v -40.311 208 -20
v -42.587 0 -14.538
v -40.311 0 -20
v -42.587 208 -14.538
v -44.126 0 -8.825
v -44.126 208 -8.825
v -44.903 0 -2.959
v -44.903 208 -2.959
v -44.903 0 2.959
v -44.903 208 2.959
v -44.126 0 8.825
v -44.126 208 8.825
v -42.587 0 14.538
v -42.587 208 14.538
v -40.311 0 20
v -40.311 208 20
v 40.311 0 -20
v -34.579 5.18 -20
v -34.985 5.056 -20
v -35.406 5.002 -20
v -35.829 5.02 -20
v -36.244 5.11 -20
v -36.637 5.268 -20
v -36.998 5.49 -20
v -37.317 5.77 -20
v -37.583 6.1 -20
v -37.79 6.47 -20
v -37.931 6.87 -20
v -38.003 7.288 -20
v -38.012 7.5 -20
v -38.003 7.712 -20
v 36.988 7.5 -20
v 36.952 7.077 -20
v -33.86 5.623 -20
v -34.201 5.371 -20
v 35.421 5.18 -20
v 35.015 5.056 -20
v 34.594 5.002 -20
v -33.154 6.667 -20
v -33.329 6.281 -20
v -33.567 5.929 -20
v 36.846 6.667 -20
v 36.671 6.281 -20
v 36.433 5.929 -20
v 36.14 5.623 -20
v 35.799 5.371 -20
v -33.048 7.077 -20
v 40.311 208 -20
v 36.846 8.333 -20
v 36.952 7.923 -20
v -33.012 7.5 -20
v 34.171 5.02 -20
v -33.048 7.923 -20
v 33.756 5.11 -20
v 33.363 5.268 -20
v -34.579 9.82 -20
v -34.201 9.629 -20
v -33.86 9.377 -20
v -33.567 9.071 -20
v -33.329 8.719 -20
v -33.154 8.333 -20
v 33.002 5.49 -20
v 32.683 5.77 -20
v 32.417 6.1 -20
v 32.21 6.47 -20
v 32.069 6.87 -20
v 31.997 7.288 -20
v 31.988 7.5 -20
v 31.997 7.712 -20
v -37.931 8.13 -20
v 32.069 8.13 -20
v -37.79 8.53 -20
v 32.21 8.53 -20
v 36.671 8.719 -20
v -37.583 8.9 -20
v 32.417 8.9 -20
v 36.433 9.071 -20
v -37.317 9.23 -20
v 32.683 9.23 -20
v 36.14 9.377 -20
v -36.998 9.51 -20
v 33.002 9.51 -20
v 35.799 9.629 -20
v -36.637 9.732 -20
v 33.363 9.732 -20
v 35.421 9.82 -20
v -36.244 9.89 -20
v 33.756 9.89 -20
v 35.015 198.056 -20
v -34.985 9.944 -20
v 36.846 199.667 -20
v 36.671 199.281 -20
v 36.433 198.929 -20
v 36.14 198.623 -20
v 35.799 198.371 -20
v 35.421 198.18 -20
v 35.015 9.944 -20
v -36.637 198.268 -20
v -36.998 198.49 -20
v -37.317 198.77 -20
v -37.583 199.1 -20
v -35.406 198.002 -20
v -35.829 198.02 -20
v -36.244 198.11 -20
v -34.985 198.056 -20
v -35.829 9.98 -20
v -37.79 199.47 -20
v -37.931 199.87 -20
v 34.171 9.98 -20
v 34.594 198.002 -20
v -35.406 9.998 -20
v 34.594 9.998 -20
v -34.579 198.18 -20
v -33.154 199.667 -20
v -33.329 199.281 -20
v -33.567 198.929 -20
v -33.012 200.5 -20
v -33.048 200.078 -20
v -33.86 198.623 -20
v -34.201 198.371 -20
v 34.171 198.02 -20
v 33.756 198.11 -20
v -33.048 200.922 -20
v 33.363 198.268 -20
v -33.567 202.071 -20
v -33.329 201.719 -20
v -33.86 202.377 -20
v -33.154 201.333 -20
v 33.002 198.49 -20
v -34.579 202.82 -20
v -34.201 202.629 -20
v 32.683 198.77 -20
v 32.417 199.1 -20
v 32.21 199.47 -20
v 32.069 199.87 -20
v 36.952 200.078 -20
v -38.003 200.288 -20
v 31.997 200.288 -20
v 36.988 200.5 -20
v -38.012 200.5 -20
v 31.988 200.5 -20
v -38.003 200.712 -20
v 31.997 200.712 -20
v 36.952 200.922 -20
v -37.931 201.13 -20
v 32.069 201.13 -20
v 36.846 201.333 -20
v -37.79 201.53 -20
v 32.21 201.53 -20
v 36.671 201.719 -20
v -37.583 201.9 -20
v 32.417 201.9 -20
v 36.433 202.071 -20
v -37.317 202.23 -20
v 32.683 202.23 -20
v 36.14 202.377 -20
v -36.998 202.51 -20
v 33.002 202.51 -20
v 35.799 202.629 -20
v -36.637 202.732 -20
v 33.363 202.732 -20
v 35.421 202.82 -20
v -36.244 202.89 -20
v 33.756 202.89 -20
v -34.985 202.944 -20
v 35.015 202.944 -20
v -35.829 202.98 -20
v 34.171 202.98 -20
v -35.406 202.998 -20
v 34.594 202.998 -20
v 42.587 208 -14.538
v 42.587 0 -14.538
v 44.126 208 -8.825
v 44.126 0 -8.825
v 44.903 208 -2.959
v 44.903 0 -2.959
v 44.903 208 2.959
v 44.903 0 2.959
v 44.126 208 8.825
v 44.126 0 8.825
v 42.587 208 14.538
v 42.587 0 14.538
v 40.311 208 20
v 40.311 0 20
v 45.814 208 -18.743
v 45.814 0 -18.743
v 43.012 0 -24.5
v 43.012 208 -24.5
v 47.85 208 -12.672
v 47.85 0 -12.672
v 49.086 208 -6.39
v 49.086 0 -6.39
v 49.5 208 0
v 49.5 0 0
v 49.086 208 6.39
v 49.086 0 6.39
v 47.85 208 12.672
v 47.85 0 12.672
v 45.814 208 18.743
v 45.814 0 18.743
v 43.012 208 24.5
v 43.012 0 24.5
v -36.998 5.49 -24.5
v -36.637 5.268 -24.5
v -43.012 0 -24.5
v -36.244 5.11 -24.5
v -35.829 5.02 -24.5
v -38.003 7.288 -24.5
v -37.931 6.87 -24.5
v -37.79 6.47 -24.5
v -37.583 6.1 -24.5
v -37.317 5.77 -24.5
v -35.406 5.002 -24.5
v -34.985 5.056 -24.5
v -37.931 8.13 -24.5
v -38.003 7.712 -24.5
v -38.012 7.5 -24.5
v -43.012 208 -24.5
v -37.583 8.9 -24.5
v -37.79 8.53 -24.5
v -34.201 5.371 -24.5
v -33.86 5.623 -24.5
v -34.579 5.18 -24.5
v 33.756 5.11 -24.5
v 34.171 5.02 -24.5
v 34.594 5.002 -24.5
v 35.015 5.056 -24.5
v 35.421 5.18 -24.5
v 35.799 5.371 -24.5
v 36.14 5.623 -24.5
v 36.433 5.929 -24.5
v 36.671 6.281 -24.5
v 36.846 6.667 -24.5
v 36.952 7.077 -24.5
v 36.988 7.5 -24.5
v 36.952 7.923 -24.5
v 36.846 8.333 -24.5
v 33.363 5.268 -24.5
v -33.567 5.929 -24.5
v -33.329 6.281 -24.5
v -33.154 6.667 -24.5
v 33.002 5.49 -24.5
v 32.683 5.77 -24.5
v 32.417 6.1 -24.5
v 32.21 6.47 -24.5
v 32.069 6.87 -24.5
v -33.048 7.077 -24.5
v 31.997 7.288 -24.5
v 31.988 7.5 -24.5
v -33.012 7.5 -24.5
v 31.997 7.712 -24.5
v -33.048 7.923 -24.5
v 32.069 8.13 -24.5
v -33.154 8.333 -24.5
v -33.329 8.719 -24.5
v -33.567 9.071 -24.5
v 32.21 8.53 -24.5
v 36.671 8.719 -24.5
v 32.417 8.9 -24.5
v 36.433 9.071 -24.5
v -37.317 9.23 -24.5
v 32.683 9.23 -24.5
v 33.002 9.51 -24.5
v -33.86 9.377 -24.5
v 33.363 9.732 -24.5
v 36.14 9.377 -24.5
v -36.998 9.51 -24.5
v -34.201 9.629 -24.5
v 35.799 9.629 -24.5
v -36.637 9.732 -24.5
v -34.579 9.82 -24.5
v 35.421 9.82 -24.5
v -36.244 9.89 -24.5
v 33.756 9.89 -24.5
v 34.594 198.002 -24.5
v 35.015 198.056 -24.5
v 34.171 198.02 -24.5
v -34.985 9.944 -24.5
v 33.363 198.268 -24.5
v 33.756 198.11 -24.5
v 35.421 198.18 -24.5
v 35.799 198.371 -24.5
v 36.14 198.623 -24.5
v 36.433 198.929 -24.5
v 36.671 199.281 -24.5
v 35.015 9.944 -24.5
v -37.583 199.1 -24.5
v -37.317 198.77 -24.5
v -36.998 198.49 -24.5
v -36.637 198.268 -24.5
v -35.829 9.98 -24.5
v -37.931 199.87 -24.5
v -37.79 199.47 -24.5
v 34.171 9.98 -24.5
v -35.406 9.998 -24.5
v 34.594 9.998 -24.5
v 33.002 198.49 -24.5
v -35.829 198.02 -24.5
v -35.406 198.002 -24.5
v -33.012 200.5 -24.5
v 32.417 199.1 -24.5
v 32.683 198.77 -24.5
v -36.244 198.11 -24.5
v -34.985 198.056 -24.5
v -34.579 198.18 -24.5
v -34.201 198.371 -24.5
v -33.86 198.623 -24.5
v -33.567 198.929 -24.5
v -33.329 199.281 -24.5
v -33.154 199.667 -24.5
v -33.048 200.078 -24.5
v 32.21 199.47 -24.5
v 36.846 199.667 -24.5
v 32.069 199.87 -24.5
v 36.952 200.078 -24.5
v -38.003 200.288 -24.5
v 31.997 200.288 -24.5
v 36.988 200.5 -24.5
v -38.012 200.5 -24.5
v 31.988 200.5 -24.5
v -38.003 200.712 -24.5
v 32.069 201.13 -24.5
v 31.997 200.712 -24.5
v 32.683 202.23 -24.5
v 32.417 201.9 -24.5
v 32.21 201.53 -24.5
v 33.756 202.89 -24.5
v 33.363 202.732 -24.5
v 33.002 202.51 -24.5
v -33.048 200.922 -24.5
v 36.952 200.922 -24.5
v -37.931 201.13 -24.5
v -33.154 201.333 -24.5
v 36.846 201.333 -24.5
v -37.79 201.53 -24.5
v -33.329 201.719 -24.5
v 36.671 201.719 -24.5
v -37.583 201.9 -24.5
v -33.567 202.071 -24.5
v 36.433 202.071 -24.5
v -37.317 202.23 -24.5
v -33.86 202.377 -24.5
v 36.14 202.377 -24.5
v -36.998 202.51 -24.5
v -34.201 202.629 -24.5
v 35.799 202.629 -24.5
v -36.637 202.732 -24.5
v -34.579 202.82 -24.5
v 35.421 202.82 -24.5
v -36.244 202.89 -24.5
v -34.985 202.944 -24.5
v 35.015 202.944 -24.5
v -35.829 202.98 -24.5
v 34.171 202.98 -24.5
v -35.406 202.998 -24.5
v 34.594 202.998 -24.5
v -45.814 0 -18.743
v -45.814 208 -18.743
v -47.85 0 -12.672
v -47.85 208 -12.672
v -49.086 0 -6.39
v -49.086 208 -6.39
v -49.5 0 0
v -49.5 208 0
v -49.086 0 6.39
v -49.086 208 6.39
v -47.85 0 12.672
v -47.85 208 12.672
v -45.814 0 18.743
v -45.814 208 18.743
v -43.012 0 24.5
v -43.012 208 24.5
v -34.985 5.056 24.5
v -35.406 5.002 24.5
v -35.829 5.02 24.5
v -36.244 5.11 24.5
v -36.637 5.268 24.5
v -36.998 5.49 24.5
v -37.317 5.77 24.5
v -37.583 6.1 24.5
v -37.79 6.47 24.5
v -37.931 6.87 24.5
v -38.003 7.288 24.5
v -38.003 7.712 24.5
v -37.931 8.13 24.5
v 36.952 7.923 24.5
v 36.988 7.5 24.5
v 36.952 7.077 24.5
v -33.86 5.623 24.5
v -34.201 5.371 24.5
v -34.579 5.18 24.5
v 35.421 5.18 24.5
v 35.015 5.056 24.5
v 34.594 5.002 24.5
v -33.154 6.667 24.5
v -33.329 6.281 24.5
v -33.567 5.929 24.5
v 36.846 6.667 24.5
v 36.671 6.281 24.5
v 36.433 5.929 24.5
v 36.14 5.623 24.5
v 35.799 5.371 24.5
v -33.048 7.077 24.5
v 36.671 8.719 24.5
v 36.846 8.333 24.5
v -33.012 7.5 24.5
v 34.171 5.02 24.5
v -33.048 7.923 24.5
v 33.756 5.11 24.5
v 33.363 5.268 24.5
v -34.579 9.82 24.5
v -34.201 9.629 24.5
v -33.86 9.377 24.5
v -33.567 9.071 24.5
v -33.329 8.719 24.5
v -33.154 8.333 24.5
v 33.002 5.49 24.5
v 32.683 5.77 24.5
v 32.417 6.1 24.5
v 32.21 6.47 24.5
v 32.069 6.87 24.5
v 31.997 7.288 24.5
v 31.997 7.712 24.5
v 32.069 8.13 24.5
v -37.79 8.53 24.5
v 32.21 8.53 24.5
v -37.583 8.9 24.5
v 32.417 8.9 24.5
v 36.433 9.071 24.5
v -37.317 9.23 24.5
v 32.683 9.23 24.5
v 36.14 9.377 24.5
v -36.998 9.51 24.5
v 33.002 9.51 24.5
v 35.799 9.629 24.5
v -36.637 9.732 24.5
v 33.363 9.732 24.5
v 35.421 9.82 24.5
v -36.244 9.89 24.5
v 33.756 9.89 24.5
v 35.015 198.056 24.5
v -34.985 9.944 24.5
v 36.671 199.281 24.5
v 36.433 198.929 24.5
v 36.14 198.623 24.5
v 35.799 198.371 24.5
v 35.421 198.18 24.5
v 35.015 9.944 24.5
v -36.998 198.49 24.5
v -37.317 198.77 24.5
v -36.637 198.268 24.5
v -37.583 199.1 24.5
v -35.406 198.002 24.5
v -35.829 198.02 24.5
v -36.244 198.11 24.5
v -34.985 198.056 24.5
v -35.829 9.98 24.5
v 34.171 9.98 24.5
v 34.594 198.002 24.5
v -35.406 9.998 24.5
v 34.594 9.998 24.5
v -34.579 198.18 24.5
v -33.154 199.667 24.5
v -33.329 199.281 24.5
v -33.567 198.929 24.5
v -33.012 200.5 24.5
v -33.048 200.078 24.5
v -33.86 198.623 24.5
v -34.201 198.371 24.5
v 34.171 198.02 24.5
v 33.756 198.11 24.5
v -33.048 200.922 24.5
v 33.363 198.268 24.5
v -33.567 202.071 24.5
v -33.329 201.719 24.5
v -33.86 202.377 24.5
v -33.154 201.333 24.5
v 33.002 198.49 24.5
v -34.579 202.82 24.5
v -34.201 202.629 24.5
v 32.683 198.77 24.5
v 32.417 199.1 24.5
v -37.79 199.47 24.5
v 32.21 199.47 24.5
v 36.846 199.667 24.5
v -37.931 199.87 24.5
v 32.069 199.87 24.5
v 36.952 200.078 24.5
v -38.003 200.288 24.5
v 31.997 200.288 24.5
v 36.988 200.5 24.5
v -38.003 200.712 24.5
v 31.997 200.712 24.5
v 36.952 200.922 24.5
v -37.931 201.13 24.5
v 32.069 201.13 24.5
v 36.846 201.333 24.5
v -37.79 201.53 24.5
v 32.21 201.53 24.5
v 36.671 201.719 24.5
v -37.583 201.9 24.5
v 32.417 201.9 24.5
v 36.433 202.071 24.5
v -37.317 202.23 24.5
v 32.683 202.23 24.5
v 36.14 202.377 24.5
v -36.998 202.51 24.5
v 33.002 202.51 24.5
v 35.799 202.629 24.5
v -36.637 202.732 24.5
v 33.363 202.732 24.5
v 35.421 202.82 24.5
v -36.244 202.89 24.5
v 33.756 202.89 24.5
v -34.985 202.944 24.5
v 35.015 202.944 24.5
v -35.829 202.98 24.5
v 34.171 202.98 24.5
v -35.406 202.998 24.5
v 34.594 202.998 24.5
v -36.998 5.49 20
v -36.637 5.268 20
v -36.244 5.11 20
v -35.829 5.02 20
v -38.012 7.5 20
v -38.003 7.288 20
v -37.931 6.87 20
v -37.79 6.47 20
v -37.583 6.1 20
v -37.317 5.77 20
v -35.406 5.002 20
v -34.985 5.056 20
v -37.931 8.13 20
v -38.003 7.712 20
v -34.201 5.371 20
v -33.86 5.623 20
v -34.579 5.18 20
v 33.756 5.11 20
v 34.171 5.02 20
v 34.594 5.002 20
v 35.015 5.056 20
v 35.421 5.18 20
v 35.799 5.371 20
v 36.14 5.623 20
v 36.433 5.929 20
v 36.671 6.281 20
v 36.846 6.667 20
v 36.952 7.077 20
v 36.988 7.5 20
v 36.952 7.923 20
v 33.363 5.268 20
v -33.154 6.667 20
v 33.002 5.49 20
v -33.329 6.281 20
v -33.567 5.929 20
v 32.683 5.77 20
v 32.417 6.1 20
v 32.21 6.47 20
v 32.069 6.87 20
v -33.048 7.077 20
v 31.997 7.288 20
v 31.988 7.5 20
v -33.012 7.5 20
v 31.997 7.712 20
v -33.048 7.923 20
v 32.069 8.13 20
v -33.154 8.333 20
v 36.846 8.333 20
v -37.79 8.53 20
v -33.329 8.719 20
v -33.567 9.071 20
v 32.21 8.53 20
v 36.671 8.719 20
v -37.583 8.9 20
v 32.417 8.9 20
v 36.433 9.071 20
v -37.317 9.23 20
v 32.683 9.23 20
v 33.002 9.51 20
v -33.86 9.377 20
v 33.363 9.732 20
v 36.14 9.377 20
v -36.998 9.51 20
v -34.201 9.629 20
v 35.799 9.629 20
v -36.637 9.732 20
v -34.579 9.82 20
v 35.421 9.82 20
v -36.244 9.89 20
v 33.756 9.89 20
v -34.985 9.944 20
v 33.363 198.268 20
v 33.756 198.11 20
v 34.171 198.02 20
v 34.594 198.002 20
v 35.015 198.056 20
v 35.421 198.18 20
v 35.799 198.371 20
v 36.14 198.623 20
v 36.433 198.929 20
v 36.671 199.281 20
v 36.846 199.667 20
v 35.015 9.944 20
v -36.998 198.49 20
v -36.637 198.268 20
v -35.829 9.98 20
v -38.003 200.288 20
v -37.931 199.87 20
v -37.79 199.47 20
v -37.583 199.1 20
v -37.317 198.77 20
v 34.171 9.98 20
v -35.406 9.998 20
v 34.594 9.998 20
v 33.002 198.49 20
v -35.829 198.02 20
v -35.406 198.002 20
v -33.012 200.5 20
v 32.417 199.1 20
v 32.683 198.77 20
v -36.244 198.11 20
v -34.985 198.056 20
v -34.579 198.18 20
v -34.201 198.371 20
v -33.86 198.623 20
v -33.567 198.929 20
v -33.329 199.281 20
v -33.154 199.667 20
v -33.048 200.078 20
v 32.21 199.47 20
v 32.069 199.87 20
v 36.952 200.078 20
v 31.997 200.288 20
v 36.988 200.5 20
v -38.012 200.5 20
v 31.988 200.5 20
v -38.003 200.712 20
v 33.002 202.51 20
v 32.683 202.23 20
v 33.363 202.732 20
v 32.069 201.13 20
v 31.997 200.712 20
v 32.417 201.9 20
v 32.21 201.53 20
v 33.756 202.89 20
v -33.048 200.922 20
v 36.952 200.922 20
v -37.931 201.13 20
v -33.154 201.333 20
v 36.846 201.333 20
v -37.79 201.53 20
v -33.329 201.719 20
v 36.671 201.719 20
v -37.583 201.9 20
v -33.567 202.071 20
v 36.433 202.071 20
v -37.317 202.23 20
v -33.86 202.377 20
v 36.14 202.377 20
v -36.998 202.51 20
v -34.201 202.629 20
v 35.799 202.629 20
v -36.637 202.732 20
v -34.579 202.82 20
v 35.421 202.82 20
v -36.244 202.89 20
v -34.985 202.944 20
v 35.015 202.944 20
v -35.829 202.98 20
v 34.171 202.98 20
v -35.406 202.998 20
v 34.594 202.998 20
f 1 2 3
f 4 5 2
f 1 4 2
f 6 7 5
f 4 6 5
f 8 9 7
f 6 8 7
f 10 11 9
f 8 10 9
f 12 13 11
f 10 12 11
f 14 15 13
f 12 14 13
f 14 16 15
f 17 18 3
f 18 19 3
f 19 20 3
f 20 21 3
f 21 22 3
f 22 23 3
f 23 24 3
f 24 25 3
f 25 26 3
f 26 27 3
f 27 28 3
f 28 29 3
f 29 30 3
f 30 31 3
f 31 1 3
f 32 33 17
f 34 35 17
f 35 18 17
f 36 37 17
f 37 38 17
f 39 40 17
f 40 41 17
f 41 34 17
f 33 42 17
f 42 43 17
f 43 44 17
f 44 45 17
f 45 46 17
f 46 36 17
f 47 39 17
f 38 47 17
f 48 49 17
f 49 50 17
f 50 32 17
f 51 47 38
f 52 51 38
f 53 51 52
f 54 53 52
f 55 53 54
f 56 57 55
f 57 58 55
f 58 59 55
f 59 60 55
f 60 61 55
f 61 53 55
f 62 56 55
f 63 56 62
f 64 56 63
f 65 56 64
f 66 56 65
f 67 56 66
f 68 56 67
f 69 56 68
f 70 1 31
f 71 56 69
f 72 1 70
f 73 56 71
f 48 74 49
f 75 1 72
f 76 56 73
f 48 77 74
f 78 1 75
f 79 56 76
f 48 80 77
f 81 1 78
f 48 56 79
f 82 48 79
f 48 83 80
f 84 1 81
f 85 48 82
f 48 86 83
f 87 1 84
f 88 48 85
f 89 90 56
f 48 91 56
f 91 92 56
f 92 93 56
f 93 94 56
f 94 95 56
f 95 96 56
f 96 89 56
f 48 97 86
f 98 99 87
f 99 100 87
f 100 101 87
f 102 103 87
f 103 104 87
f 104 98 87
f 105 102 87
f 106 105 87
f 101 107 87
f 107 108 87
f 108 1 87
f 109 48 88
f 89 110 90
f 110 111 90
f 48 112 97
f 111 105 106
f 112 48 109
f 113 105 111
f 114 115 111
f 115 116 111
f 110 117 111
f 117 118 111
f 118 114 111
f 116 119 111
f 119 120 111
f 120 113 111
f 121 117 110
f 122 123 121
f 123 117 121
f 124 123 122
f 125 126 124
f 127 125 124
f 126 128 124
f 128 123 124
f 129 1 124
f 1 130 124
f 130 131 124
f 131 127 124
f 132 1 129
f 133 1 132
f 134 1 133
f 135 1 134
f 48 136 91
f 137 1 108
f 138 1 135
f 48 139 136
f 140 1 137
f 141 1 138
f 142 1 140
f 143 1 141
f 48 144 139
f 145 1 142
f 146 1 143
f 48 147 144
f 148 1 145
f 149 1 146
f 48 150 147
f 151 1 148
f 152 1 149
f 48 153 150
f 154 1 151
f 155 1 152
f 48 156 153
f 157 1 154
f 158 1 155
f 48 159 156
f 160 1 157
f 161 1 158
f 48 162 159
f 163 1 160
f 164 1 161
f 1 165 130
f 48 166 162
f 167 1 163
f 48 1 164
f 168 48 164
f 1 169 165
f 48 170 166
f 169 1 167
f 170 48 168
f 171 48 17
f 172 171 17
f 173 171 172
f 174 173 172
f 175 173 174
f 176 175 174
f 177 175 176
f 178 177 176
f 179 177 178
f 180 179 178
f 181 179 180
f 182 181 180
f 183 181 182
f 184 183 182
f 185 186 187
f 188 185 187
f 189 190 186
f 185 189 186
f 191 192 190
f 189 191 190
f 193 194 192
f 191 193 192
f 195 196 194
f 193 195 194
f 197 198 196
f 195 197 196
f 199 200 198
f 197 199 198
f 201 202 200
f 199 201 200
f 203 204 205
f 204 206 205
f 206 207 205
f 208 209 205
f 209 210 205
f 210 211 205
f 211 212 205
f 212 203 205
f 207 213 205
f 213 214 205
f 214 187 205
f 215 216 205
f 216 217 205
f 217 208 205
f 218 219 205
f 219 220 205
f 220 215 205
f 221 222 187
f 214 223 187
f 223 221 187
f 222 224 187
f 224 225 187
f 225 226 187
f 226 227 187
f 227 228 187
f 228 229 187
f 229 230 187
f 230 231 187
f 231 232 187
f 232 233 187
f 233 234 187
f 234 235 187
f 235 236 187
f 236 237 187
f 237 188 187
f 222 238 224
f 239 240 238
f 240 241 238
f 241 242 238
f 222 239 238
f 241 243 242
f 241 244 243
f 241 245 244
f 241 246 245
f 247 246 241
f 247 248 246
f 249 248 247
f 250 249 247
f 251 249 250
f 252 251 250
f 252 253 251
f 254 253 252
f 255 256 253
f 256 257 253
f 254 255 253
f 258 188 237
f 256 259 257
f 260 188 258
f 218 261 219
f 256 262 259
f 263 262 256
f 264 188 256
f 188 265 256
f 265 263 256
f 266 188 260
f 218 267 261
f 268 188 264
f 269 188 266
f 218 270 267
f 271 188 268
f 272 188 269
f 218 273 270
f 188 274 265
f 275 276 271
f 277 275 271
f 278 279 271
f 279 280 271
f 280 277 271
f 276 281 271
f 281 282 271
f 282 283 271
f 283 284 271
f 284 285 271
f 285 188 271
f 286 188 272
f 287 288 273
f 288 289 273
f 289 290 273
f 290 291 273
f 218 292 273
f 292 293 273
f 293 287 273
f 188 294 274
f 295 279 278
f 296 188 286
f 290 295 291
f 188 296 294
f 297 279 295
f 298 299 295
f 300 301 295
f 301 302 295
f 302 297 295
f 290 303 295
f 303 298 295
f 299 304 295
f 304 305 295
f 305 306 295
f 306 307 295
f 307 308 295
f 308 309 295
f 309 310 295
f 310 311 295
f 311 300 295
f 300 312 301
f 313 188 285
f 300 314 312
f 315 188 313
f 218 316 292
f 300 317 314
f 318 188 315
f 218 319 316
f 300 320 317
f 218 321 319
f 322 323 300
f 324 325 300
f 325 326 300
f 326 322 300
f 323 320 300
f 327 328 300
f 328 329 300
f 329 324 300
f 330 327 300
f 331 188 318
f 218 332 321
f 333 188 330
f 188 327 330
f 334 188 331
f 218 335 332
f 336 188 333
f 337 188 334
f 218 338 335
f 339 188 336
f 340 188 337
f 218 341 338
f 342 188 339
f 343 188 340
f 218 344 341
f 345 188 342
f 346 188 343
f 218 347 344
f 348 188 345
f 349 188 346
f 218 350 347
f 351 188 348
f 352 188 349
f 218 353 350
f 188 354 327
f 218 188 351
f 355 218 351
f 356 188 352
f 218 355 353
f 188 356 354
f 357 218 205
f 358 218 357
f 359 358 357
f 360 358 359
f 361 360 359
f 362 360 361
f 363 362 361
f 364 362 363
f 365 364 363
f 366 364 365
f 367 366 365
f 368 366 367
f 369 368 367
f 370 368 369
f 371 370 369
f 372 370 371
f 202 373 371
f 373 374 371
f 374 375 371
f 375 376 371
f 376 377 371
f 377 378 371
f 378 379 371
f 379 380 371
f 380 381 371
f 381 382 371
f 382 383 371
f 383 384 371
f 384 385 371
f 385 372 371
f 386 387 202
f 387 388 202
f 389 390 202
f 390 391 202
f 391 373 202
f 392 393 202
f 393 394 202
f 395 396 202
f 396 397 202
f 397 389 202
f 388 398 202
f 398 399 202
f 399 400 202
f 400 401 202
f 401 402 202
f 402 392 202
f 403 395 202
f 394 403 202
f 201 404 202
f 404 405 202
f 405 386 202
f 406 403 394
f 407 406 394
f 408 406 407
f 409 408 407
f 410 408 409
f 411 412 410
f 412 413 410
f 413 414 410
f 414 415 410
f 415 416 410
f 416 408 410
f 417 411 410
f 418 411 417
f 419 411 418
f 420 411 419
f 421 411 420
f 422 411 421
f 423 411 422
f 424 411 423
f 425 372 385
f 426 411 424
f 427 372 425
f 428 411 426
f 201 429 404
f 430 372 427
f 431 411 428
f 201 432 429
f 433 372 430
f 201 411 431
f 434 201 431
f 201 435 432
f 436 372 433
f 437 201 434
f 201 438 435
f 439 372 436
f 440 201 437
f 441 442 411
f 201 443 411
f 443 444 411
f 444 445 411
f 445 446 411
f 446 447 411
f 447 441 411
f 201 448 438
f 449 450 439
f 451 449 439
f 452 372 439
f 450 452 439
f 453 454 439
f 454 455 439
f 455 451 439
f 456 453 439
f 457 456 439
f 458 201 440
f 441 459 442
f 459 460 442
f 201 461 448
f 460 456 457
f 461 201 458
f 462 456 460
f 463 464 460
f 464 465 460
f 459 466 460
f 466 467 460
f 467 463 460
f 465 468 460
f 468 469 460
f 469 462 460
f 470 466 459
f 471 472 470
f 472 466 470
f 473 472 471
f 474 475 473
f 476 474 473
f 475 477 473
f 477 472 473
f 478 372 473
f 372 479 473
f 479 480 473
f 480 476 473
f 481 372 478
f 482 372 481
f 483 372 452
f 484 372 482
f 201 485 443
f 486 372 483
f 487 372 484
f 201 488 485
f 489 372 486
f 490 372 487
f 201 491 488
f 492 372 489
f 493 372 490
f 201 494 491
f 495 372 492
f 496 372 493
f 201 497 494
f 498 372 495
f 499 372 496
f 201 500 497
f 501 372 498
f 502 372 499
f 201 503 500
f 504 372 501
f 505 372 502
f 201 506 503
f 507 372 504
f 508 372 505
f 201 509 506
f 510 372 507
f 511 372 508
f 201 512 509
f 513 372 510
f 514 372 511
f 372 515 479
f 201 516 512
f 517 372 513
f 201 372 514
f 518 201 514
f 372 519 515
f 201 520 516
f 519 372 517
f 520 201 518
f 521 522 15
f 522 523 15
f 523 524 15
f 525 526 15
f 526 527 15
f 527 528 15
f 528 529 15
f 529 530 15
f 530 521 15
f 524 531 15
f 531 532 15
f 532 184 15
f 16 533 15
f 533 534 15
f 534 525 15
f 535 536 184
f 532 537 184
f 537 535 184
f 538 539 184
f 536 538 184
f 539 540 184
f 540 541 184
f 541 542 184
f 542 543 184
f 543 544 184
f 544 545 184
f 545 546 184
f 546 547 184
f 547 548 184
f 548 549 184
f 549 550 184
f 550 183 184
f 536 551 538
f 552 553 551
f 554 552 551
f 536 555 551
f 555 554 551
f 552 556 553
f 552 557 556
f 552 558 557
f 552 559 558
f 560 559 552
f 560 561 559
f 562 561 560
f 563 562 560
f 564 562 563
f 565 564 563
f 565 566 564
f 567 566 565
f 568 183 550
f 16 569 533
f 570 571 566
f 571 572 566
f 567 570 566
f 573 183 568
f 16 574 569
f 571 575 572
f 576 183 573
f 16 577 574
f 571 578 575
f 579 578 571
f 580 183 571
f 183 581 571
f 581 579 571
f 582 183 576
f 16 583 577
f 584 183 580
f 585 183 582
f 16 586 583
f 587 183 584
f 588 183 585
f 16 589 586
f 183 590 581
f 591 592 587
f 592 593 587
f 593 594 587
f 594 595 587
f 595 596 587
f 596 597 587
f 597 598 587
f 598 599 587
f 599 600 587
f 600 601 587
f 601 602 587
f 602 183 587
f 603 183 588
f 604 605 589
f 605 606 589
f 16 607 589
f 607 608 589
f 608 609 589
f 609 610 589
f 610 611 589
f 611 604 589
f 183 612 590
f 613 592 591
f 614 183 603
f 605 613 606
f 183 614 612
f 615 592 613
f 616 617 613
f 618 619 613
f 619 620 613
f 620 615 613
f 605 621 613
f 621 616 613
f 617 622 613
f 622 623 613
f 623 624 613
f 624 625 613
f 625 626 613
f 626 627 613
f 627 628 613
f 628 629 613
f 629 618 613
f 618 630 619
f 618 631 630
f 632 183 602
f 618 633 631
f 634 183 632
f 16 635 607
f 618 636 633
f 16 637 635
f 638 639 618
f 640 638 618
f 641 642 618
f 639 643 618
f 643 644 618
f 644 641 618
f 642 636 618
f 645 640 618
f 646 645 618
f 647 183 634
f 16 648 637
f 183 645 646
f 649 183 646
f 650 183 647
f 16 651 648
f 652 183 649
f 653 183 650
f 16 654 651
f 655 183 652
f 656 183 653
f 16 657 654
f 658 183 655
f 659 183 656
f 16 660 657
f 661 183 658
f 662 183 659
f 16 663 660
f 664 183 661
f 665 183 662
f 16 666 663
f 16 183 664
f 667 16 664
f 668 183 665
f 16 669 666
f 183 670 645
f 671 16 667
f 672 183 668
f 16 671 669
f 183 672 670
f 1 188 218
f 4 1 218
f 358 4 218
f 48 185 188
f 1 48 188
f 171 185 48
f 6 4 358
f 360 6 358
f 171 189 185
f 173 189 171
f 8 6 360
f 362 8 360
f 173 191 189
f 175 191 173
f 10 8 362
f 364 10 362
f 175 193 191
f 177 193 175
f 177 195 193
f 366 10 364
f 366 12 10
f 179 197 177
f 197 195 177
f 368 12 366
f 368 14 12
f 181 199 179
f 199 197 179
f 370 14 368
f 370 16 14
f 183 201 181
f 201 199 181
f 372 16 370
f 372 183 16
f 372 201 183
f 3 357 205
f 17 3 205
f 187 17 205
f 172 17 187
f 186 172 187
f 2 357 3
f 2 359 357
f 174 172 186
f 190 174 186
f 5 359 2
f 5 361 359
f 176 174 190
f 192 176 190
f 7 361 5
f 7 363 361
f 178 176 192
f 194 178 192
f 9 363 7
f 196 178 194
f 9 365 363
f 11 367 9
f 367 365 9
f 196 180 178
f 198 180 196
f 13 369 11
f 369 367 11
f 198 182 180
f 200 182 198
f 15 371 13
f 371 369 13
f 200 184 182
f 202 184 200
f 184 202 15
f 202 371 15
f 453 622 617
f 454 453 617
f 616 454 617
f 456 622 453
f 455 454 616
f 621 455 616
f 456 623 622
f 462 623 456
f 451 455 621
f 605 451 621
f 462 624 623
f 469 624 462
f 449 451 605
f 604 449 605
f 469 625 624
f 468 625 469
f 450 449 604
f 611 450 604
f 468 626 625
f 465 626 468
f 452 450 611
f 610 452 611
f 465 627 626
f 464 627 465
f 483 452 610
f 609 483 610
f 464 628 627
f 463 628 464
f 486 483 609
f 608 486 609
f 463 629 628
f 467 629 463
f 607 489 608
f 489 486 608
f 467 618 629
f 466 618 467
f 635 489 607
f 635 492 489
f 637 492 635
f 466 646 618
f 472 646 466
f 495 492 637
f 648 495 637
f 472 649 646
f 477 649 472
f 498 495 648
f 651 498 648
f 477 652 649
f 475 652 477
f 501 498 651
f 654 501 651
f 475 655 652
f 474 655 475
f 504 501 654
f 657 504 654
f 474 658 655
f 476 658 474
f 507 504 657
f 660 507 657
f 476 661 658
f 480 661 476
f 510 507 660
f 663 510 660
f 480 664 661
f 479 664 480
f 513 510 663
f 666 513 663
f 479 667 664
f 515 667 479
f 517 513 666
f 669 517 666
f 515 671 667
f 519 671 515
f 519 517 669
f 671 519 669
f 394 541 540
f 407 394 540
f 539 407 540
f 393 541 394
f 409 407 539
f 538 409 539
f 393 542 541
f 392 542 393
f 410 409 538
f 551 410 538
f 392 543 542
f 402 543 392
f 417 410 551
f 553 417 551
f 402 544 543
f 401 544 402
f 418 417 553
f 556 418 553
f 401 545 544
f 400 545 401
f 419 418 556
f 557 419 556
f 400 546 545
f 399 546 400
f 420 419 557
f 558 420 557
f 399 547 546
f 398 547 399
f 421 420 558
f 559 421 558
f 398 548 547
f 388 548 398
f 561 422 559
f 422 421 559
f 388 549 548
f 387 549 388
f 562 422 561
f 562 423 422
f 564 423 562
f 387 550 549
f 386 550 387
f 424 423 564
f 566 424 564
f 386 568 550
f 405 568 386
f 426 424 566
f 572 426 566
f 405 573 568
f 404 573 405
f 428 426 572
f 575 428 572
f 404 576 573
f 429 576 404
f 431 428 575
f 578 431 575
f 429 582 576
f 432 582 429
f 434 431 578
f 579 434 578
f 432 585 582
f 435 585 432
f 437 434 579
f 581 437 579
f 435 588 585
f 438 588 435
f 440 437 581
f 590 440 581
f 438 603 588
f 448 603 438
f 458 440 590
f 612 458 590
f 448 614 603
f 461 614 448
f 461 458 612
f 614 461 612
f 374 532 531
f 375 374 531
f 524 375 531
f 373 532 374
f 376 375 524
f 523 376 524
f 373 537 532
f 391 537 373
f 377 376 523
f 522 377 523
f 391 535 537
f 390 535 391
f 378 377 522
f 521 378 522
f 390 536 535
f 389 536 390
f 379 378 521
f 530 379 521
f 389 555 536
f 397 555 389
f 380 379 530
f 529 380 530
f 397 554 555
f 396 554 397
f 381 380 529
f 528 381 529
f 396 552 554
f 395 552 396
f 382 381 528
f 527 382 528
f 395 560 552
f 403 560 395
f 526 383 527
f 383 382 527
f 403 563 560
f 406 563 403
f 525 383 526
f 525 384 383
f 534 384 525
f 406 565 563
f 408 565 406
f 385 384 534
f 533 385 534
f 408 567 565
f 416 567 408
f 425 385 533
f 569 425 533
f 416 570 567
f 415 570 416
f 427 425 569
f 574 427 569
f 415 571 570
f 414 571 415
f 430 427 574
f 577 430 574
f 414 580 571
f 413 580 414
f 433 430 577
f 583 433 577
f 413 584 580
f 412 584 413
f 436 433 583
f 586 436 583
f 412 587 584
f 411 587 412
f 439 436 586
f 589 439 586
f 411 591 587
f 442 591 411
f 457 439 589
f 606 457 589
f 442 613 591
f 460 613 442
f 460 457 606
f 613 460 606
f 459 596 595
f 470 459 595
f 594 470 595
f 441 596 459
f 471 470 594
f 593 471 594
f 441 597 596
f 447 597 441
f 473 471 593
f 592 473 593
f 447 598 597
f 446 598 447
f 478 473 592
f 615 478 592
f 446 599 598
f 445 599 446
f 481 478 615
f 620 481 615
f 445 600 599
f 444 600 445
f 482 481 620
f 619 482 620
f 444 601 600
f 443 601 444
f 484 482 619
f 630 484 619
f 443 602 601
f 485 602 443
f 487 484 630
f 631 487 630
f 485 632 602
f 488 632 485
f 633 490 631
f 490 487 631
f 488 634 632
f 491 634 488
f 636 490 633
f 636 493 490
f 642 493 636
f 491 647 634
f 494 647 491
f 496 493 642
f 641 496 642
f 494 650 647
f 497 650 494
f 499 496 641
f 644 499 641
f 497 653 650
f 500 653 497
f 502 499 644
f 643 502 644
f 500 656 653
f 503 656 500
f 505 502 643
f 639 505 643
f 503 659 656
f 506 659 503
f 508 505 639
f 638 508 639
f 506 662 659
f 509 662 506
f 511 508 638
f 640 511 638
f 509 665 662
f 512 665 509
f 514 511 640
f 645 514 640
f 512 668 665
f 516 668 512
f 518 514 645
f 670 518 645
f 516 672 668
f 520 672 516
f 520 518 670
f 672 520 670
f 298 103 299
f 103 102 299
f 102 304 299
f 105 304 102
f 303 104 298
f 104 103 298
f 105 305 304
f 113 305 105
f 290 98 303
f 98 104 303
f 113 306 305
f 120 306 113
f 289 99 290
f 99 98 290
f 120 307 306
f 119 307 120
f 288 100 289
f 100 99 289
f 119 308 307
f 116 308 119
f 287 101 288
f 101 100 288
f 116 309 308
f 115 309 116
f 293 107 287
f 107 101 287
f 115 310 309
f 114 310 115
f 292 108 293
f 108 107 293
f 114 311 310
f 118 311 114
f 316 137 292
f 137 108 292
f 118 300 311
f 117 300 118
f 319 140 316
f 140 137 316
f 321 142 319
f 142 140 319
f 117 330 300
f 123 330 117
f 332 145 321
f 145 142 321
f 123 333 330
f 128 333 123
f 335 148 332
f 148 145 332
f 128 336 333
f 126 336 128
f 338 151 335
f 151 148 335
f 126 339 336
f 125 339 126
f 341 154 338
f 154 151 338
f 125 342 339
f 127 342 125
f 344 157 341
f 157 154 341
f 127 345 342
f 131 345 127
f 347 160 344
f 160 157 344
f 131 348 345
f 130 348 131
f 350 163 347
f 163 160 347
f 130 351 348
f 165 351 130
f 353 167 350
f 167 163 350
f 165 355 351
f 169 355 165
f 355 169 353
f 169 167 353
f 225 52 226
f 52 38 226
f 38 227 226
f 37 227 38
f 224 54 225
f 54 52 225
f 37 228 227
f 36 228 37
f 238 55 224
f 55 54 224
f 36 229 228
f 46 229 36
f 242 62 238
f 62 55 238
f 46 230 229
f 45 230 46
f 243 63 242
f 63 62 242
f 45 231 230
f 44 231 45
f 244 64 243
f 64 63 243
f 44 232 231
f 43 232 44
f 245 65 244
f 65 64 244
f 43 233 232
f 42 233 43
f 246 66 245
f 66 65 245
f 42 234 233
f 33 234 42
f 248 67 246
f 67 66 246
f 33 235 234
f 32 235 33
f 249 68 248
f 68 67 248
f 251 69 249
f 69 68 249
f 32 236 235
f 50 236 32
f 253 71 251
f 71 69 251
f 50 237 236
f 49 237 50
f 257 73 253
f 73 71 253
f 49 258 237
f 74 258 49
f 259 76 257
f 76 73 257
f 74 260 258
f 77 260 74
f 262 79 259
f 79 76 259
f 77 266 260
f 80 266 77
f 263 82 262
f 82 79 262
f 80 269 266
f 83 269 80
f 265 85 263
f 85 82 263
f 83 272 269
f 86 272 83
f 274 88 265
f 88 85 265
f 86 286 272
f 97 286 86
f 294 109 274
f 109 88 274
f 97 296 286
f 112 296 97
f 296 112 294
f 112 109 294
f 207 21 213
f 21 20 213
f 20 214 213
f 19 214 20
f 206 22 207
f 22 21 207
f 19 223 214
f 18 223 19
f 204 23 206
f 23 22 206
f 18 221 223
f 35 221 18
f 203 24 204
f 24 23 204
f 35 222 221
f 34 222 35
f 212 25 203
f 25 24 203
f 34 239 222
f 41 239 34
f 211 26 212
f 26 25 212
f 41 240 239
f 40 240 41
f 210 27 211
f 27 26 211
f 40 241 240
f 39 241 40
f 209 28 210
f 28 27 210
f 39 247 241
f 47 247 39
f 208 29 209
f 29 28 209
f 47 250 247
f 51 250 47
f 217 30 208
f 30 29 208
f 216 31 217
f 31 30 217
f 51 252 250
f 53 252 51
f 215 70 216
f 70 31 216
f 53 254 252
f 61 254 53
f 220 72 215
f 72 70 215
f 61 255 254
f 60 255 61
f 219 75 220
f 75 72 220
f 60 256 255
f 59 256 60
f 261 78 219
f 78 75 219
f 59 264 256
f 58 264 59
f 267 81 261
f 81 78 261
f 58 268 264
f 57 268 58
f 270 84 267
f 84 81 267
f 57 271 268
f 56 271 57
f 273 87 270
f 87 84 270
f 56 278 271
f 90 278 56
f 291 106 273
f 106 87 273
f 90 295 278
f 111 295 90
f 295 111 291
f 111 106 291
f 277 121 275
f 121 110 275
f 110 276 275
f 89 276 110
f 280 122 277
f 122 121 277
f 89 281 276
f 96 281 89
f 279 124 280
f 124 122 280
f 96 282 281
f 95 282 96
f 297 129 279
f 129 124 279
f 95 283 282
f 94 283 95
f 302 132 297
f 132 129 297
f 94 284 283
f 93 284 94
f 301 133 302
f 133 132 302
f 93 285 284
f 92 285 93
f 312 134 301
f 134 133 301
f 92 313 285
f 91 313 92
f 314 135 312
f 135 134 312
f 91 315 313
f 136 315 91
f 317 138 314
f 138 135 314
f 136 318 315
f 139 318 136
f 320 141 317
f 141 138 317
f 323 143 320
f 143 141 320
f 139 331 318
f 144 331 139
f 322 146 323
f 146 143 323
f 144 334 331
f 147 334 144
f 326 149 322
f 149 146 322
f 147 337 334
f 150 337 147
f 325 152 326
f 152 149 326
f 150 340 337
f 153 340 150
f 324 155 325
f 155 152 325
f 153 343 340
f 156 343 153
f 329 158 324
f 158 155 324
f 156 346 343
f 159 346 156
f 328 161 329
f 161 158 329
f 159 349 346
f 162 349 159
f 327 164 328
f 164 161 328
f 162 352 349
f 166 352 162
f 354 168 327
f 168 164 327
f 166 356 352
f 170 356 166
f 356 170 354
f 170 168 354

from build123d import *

# Parameters (mm, degrees)
BOSS_EXTRUDE1_DEPTH = 208
SKETCH3_R           = 2.5
CUT_EXTRUDE1_DEPTH  = 60


with BuildPart() as part:
    # Sketch2 → Boss-Extrude1 (new body)
    with BuildSketch(Plane(origin=(0, 0, 0), x_dir=(1, 0, 0), z_dir=(0, 1, 0))):
        with BuildLine():
            Line((-45.279686395, -20), (-40.311288741, -20))
            ThreePointArc((-40.311288741, -20), (-45, 0), (-40.311288741, 20))
            Line((-40.311288741, 20), (-45.279686395, 20))
            ThreePointArc((-45.279686395, 20), (-49.5, 0), (-45.279686395, -20))
        make_face()
        with BuildLine():
            ThreePointArc((45, 0), (43.812144397, -10.271124735), (40.311288741, -20))
            Line((40.311288741, -20), (45.279686395, -20))
            ThreePointArc((45.279686395, -20), (48.433430998, -10.22021339), (49.5, 0))
            ThreePointArc((49.5, 0), (48.433430998, 10.22021339), (45.279686395, 20))
            Line((45.279686395, 20), (40.311288741, 20))
            ThreePointArc((40.311288741, 20), (43.812144397, 10.271124735), (45, 0))
        make_face()
        with BuildLine():
            ThreePointArc((-37.7458607, -24.5), (-39.093377249, -22.286943605), (-40.311288741, -20))
            Line((-40.311288741, -20), (-45.279686395, -20))
            ThreePointArc((-45.279686395, -20), (-44.202957773, -22.278880674), (-43.011626335, -24.5))
            Line((-43.011626335, -24.5), (-37.7458607, -24.5))
        make_face()
        with BuildLine():
            Line((45.279686395, -20), (40.311288741, -20))
            ThreePointArc((40.311288741, -20), (39.093377249, -22.286943605), (37.7458607, -24.5))
            Line((37.7458607, -24.5), (43.011626335, -24.5))
            ThreePointArc((43.011626335, -24.5), (44.202957773, -22.278880674), (45.279686395, -20))
        make_face()
        with BuildLine():
            Line((40.311288741, -20), (0, -20))
            Line((0, -20), (-40.311288741, -20))
            ThreePointArc((-40.311288741, -20), (-39.093377249, -22.286943605), (-37.7458607, -24.5))
            Line((-37.7458607, -24.5), (37.7458607, -24.5))
            ThreePointArc((37.7458607, -24.5), (39.093377249, -22.286943605), (40.311288741, -20))
        make_face()
        with BuildLine():
            Line((-45.279686395, 20), (-40.311288741, 20))
            ThreePointArc((-40.311288741, 20), (-39.093377249, 22.286943605), (-37.7458607, 24.5))
            Line((-37.7458607, 24.5), (-43.011626335, 24.5))
            ThreePointArc((-43.011626335, 24.5), (-44.202957773, 22.278880674), (-45.279686395, 20))
        make_face()
        with BuildLine():
            ThreePointArc((37.7458607, 24.5), (39.093377249, 22.286943605), (40.311288741, 20))
            Line((40.311288741, 20), (45.279686395, 20))
            ThreePointArc((45.279686395, 20), (44.202957773, 22.278880674), (43.011626335, 24.5))
            Line((43.011626335, 24.5), (37.7458607, 24.5))
        make_face()
        with BuildLine():
            Line((-40.311288741, 20), (0, 20))
            Line((0, 20), (40.311288741, 20))
            ThreePointArc((40.311288741, 20), (39.093377249, 22.286943605), (37.7458607, 24.5))
            Line((37.7458607, 24.5), (-37.7458607, 24.5))
            ThreePointArc((-37.7458607, 24.5), (-39.093377249, 22.286943605), (-40.311288741, 20))
        make_face()
    extrude(amount=BOSS_EXTRUDE1_DEPTH)

    # Sketch3 → Cut-Extrude1 (cut)
    with BuildSketch(Plane.XY.offset(24.5)):
        with Locations((-35.511626335, 200.5)):
            Circle(SKETCH3_R)
        with Locations((34.488373665, 200.5)):
            Circle(SKETCH3_R)
        with Locations((34.488373665, 7.5)):
            Circle(SKETCH3_R)
        with Locations((-35.511626335, 7.5)):
            Circle(SKETCH3_R)
    extrude(amount=-CUT_EXTRUDE1_DEPTH, mode=Mode.SUBTRACT)


solid = part.part
